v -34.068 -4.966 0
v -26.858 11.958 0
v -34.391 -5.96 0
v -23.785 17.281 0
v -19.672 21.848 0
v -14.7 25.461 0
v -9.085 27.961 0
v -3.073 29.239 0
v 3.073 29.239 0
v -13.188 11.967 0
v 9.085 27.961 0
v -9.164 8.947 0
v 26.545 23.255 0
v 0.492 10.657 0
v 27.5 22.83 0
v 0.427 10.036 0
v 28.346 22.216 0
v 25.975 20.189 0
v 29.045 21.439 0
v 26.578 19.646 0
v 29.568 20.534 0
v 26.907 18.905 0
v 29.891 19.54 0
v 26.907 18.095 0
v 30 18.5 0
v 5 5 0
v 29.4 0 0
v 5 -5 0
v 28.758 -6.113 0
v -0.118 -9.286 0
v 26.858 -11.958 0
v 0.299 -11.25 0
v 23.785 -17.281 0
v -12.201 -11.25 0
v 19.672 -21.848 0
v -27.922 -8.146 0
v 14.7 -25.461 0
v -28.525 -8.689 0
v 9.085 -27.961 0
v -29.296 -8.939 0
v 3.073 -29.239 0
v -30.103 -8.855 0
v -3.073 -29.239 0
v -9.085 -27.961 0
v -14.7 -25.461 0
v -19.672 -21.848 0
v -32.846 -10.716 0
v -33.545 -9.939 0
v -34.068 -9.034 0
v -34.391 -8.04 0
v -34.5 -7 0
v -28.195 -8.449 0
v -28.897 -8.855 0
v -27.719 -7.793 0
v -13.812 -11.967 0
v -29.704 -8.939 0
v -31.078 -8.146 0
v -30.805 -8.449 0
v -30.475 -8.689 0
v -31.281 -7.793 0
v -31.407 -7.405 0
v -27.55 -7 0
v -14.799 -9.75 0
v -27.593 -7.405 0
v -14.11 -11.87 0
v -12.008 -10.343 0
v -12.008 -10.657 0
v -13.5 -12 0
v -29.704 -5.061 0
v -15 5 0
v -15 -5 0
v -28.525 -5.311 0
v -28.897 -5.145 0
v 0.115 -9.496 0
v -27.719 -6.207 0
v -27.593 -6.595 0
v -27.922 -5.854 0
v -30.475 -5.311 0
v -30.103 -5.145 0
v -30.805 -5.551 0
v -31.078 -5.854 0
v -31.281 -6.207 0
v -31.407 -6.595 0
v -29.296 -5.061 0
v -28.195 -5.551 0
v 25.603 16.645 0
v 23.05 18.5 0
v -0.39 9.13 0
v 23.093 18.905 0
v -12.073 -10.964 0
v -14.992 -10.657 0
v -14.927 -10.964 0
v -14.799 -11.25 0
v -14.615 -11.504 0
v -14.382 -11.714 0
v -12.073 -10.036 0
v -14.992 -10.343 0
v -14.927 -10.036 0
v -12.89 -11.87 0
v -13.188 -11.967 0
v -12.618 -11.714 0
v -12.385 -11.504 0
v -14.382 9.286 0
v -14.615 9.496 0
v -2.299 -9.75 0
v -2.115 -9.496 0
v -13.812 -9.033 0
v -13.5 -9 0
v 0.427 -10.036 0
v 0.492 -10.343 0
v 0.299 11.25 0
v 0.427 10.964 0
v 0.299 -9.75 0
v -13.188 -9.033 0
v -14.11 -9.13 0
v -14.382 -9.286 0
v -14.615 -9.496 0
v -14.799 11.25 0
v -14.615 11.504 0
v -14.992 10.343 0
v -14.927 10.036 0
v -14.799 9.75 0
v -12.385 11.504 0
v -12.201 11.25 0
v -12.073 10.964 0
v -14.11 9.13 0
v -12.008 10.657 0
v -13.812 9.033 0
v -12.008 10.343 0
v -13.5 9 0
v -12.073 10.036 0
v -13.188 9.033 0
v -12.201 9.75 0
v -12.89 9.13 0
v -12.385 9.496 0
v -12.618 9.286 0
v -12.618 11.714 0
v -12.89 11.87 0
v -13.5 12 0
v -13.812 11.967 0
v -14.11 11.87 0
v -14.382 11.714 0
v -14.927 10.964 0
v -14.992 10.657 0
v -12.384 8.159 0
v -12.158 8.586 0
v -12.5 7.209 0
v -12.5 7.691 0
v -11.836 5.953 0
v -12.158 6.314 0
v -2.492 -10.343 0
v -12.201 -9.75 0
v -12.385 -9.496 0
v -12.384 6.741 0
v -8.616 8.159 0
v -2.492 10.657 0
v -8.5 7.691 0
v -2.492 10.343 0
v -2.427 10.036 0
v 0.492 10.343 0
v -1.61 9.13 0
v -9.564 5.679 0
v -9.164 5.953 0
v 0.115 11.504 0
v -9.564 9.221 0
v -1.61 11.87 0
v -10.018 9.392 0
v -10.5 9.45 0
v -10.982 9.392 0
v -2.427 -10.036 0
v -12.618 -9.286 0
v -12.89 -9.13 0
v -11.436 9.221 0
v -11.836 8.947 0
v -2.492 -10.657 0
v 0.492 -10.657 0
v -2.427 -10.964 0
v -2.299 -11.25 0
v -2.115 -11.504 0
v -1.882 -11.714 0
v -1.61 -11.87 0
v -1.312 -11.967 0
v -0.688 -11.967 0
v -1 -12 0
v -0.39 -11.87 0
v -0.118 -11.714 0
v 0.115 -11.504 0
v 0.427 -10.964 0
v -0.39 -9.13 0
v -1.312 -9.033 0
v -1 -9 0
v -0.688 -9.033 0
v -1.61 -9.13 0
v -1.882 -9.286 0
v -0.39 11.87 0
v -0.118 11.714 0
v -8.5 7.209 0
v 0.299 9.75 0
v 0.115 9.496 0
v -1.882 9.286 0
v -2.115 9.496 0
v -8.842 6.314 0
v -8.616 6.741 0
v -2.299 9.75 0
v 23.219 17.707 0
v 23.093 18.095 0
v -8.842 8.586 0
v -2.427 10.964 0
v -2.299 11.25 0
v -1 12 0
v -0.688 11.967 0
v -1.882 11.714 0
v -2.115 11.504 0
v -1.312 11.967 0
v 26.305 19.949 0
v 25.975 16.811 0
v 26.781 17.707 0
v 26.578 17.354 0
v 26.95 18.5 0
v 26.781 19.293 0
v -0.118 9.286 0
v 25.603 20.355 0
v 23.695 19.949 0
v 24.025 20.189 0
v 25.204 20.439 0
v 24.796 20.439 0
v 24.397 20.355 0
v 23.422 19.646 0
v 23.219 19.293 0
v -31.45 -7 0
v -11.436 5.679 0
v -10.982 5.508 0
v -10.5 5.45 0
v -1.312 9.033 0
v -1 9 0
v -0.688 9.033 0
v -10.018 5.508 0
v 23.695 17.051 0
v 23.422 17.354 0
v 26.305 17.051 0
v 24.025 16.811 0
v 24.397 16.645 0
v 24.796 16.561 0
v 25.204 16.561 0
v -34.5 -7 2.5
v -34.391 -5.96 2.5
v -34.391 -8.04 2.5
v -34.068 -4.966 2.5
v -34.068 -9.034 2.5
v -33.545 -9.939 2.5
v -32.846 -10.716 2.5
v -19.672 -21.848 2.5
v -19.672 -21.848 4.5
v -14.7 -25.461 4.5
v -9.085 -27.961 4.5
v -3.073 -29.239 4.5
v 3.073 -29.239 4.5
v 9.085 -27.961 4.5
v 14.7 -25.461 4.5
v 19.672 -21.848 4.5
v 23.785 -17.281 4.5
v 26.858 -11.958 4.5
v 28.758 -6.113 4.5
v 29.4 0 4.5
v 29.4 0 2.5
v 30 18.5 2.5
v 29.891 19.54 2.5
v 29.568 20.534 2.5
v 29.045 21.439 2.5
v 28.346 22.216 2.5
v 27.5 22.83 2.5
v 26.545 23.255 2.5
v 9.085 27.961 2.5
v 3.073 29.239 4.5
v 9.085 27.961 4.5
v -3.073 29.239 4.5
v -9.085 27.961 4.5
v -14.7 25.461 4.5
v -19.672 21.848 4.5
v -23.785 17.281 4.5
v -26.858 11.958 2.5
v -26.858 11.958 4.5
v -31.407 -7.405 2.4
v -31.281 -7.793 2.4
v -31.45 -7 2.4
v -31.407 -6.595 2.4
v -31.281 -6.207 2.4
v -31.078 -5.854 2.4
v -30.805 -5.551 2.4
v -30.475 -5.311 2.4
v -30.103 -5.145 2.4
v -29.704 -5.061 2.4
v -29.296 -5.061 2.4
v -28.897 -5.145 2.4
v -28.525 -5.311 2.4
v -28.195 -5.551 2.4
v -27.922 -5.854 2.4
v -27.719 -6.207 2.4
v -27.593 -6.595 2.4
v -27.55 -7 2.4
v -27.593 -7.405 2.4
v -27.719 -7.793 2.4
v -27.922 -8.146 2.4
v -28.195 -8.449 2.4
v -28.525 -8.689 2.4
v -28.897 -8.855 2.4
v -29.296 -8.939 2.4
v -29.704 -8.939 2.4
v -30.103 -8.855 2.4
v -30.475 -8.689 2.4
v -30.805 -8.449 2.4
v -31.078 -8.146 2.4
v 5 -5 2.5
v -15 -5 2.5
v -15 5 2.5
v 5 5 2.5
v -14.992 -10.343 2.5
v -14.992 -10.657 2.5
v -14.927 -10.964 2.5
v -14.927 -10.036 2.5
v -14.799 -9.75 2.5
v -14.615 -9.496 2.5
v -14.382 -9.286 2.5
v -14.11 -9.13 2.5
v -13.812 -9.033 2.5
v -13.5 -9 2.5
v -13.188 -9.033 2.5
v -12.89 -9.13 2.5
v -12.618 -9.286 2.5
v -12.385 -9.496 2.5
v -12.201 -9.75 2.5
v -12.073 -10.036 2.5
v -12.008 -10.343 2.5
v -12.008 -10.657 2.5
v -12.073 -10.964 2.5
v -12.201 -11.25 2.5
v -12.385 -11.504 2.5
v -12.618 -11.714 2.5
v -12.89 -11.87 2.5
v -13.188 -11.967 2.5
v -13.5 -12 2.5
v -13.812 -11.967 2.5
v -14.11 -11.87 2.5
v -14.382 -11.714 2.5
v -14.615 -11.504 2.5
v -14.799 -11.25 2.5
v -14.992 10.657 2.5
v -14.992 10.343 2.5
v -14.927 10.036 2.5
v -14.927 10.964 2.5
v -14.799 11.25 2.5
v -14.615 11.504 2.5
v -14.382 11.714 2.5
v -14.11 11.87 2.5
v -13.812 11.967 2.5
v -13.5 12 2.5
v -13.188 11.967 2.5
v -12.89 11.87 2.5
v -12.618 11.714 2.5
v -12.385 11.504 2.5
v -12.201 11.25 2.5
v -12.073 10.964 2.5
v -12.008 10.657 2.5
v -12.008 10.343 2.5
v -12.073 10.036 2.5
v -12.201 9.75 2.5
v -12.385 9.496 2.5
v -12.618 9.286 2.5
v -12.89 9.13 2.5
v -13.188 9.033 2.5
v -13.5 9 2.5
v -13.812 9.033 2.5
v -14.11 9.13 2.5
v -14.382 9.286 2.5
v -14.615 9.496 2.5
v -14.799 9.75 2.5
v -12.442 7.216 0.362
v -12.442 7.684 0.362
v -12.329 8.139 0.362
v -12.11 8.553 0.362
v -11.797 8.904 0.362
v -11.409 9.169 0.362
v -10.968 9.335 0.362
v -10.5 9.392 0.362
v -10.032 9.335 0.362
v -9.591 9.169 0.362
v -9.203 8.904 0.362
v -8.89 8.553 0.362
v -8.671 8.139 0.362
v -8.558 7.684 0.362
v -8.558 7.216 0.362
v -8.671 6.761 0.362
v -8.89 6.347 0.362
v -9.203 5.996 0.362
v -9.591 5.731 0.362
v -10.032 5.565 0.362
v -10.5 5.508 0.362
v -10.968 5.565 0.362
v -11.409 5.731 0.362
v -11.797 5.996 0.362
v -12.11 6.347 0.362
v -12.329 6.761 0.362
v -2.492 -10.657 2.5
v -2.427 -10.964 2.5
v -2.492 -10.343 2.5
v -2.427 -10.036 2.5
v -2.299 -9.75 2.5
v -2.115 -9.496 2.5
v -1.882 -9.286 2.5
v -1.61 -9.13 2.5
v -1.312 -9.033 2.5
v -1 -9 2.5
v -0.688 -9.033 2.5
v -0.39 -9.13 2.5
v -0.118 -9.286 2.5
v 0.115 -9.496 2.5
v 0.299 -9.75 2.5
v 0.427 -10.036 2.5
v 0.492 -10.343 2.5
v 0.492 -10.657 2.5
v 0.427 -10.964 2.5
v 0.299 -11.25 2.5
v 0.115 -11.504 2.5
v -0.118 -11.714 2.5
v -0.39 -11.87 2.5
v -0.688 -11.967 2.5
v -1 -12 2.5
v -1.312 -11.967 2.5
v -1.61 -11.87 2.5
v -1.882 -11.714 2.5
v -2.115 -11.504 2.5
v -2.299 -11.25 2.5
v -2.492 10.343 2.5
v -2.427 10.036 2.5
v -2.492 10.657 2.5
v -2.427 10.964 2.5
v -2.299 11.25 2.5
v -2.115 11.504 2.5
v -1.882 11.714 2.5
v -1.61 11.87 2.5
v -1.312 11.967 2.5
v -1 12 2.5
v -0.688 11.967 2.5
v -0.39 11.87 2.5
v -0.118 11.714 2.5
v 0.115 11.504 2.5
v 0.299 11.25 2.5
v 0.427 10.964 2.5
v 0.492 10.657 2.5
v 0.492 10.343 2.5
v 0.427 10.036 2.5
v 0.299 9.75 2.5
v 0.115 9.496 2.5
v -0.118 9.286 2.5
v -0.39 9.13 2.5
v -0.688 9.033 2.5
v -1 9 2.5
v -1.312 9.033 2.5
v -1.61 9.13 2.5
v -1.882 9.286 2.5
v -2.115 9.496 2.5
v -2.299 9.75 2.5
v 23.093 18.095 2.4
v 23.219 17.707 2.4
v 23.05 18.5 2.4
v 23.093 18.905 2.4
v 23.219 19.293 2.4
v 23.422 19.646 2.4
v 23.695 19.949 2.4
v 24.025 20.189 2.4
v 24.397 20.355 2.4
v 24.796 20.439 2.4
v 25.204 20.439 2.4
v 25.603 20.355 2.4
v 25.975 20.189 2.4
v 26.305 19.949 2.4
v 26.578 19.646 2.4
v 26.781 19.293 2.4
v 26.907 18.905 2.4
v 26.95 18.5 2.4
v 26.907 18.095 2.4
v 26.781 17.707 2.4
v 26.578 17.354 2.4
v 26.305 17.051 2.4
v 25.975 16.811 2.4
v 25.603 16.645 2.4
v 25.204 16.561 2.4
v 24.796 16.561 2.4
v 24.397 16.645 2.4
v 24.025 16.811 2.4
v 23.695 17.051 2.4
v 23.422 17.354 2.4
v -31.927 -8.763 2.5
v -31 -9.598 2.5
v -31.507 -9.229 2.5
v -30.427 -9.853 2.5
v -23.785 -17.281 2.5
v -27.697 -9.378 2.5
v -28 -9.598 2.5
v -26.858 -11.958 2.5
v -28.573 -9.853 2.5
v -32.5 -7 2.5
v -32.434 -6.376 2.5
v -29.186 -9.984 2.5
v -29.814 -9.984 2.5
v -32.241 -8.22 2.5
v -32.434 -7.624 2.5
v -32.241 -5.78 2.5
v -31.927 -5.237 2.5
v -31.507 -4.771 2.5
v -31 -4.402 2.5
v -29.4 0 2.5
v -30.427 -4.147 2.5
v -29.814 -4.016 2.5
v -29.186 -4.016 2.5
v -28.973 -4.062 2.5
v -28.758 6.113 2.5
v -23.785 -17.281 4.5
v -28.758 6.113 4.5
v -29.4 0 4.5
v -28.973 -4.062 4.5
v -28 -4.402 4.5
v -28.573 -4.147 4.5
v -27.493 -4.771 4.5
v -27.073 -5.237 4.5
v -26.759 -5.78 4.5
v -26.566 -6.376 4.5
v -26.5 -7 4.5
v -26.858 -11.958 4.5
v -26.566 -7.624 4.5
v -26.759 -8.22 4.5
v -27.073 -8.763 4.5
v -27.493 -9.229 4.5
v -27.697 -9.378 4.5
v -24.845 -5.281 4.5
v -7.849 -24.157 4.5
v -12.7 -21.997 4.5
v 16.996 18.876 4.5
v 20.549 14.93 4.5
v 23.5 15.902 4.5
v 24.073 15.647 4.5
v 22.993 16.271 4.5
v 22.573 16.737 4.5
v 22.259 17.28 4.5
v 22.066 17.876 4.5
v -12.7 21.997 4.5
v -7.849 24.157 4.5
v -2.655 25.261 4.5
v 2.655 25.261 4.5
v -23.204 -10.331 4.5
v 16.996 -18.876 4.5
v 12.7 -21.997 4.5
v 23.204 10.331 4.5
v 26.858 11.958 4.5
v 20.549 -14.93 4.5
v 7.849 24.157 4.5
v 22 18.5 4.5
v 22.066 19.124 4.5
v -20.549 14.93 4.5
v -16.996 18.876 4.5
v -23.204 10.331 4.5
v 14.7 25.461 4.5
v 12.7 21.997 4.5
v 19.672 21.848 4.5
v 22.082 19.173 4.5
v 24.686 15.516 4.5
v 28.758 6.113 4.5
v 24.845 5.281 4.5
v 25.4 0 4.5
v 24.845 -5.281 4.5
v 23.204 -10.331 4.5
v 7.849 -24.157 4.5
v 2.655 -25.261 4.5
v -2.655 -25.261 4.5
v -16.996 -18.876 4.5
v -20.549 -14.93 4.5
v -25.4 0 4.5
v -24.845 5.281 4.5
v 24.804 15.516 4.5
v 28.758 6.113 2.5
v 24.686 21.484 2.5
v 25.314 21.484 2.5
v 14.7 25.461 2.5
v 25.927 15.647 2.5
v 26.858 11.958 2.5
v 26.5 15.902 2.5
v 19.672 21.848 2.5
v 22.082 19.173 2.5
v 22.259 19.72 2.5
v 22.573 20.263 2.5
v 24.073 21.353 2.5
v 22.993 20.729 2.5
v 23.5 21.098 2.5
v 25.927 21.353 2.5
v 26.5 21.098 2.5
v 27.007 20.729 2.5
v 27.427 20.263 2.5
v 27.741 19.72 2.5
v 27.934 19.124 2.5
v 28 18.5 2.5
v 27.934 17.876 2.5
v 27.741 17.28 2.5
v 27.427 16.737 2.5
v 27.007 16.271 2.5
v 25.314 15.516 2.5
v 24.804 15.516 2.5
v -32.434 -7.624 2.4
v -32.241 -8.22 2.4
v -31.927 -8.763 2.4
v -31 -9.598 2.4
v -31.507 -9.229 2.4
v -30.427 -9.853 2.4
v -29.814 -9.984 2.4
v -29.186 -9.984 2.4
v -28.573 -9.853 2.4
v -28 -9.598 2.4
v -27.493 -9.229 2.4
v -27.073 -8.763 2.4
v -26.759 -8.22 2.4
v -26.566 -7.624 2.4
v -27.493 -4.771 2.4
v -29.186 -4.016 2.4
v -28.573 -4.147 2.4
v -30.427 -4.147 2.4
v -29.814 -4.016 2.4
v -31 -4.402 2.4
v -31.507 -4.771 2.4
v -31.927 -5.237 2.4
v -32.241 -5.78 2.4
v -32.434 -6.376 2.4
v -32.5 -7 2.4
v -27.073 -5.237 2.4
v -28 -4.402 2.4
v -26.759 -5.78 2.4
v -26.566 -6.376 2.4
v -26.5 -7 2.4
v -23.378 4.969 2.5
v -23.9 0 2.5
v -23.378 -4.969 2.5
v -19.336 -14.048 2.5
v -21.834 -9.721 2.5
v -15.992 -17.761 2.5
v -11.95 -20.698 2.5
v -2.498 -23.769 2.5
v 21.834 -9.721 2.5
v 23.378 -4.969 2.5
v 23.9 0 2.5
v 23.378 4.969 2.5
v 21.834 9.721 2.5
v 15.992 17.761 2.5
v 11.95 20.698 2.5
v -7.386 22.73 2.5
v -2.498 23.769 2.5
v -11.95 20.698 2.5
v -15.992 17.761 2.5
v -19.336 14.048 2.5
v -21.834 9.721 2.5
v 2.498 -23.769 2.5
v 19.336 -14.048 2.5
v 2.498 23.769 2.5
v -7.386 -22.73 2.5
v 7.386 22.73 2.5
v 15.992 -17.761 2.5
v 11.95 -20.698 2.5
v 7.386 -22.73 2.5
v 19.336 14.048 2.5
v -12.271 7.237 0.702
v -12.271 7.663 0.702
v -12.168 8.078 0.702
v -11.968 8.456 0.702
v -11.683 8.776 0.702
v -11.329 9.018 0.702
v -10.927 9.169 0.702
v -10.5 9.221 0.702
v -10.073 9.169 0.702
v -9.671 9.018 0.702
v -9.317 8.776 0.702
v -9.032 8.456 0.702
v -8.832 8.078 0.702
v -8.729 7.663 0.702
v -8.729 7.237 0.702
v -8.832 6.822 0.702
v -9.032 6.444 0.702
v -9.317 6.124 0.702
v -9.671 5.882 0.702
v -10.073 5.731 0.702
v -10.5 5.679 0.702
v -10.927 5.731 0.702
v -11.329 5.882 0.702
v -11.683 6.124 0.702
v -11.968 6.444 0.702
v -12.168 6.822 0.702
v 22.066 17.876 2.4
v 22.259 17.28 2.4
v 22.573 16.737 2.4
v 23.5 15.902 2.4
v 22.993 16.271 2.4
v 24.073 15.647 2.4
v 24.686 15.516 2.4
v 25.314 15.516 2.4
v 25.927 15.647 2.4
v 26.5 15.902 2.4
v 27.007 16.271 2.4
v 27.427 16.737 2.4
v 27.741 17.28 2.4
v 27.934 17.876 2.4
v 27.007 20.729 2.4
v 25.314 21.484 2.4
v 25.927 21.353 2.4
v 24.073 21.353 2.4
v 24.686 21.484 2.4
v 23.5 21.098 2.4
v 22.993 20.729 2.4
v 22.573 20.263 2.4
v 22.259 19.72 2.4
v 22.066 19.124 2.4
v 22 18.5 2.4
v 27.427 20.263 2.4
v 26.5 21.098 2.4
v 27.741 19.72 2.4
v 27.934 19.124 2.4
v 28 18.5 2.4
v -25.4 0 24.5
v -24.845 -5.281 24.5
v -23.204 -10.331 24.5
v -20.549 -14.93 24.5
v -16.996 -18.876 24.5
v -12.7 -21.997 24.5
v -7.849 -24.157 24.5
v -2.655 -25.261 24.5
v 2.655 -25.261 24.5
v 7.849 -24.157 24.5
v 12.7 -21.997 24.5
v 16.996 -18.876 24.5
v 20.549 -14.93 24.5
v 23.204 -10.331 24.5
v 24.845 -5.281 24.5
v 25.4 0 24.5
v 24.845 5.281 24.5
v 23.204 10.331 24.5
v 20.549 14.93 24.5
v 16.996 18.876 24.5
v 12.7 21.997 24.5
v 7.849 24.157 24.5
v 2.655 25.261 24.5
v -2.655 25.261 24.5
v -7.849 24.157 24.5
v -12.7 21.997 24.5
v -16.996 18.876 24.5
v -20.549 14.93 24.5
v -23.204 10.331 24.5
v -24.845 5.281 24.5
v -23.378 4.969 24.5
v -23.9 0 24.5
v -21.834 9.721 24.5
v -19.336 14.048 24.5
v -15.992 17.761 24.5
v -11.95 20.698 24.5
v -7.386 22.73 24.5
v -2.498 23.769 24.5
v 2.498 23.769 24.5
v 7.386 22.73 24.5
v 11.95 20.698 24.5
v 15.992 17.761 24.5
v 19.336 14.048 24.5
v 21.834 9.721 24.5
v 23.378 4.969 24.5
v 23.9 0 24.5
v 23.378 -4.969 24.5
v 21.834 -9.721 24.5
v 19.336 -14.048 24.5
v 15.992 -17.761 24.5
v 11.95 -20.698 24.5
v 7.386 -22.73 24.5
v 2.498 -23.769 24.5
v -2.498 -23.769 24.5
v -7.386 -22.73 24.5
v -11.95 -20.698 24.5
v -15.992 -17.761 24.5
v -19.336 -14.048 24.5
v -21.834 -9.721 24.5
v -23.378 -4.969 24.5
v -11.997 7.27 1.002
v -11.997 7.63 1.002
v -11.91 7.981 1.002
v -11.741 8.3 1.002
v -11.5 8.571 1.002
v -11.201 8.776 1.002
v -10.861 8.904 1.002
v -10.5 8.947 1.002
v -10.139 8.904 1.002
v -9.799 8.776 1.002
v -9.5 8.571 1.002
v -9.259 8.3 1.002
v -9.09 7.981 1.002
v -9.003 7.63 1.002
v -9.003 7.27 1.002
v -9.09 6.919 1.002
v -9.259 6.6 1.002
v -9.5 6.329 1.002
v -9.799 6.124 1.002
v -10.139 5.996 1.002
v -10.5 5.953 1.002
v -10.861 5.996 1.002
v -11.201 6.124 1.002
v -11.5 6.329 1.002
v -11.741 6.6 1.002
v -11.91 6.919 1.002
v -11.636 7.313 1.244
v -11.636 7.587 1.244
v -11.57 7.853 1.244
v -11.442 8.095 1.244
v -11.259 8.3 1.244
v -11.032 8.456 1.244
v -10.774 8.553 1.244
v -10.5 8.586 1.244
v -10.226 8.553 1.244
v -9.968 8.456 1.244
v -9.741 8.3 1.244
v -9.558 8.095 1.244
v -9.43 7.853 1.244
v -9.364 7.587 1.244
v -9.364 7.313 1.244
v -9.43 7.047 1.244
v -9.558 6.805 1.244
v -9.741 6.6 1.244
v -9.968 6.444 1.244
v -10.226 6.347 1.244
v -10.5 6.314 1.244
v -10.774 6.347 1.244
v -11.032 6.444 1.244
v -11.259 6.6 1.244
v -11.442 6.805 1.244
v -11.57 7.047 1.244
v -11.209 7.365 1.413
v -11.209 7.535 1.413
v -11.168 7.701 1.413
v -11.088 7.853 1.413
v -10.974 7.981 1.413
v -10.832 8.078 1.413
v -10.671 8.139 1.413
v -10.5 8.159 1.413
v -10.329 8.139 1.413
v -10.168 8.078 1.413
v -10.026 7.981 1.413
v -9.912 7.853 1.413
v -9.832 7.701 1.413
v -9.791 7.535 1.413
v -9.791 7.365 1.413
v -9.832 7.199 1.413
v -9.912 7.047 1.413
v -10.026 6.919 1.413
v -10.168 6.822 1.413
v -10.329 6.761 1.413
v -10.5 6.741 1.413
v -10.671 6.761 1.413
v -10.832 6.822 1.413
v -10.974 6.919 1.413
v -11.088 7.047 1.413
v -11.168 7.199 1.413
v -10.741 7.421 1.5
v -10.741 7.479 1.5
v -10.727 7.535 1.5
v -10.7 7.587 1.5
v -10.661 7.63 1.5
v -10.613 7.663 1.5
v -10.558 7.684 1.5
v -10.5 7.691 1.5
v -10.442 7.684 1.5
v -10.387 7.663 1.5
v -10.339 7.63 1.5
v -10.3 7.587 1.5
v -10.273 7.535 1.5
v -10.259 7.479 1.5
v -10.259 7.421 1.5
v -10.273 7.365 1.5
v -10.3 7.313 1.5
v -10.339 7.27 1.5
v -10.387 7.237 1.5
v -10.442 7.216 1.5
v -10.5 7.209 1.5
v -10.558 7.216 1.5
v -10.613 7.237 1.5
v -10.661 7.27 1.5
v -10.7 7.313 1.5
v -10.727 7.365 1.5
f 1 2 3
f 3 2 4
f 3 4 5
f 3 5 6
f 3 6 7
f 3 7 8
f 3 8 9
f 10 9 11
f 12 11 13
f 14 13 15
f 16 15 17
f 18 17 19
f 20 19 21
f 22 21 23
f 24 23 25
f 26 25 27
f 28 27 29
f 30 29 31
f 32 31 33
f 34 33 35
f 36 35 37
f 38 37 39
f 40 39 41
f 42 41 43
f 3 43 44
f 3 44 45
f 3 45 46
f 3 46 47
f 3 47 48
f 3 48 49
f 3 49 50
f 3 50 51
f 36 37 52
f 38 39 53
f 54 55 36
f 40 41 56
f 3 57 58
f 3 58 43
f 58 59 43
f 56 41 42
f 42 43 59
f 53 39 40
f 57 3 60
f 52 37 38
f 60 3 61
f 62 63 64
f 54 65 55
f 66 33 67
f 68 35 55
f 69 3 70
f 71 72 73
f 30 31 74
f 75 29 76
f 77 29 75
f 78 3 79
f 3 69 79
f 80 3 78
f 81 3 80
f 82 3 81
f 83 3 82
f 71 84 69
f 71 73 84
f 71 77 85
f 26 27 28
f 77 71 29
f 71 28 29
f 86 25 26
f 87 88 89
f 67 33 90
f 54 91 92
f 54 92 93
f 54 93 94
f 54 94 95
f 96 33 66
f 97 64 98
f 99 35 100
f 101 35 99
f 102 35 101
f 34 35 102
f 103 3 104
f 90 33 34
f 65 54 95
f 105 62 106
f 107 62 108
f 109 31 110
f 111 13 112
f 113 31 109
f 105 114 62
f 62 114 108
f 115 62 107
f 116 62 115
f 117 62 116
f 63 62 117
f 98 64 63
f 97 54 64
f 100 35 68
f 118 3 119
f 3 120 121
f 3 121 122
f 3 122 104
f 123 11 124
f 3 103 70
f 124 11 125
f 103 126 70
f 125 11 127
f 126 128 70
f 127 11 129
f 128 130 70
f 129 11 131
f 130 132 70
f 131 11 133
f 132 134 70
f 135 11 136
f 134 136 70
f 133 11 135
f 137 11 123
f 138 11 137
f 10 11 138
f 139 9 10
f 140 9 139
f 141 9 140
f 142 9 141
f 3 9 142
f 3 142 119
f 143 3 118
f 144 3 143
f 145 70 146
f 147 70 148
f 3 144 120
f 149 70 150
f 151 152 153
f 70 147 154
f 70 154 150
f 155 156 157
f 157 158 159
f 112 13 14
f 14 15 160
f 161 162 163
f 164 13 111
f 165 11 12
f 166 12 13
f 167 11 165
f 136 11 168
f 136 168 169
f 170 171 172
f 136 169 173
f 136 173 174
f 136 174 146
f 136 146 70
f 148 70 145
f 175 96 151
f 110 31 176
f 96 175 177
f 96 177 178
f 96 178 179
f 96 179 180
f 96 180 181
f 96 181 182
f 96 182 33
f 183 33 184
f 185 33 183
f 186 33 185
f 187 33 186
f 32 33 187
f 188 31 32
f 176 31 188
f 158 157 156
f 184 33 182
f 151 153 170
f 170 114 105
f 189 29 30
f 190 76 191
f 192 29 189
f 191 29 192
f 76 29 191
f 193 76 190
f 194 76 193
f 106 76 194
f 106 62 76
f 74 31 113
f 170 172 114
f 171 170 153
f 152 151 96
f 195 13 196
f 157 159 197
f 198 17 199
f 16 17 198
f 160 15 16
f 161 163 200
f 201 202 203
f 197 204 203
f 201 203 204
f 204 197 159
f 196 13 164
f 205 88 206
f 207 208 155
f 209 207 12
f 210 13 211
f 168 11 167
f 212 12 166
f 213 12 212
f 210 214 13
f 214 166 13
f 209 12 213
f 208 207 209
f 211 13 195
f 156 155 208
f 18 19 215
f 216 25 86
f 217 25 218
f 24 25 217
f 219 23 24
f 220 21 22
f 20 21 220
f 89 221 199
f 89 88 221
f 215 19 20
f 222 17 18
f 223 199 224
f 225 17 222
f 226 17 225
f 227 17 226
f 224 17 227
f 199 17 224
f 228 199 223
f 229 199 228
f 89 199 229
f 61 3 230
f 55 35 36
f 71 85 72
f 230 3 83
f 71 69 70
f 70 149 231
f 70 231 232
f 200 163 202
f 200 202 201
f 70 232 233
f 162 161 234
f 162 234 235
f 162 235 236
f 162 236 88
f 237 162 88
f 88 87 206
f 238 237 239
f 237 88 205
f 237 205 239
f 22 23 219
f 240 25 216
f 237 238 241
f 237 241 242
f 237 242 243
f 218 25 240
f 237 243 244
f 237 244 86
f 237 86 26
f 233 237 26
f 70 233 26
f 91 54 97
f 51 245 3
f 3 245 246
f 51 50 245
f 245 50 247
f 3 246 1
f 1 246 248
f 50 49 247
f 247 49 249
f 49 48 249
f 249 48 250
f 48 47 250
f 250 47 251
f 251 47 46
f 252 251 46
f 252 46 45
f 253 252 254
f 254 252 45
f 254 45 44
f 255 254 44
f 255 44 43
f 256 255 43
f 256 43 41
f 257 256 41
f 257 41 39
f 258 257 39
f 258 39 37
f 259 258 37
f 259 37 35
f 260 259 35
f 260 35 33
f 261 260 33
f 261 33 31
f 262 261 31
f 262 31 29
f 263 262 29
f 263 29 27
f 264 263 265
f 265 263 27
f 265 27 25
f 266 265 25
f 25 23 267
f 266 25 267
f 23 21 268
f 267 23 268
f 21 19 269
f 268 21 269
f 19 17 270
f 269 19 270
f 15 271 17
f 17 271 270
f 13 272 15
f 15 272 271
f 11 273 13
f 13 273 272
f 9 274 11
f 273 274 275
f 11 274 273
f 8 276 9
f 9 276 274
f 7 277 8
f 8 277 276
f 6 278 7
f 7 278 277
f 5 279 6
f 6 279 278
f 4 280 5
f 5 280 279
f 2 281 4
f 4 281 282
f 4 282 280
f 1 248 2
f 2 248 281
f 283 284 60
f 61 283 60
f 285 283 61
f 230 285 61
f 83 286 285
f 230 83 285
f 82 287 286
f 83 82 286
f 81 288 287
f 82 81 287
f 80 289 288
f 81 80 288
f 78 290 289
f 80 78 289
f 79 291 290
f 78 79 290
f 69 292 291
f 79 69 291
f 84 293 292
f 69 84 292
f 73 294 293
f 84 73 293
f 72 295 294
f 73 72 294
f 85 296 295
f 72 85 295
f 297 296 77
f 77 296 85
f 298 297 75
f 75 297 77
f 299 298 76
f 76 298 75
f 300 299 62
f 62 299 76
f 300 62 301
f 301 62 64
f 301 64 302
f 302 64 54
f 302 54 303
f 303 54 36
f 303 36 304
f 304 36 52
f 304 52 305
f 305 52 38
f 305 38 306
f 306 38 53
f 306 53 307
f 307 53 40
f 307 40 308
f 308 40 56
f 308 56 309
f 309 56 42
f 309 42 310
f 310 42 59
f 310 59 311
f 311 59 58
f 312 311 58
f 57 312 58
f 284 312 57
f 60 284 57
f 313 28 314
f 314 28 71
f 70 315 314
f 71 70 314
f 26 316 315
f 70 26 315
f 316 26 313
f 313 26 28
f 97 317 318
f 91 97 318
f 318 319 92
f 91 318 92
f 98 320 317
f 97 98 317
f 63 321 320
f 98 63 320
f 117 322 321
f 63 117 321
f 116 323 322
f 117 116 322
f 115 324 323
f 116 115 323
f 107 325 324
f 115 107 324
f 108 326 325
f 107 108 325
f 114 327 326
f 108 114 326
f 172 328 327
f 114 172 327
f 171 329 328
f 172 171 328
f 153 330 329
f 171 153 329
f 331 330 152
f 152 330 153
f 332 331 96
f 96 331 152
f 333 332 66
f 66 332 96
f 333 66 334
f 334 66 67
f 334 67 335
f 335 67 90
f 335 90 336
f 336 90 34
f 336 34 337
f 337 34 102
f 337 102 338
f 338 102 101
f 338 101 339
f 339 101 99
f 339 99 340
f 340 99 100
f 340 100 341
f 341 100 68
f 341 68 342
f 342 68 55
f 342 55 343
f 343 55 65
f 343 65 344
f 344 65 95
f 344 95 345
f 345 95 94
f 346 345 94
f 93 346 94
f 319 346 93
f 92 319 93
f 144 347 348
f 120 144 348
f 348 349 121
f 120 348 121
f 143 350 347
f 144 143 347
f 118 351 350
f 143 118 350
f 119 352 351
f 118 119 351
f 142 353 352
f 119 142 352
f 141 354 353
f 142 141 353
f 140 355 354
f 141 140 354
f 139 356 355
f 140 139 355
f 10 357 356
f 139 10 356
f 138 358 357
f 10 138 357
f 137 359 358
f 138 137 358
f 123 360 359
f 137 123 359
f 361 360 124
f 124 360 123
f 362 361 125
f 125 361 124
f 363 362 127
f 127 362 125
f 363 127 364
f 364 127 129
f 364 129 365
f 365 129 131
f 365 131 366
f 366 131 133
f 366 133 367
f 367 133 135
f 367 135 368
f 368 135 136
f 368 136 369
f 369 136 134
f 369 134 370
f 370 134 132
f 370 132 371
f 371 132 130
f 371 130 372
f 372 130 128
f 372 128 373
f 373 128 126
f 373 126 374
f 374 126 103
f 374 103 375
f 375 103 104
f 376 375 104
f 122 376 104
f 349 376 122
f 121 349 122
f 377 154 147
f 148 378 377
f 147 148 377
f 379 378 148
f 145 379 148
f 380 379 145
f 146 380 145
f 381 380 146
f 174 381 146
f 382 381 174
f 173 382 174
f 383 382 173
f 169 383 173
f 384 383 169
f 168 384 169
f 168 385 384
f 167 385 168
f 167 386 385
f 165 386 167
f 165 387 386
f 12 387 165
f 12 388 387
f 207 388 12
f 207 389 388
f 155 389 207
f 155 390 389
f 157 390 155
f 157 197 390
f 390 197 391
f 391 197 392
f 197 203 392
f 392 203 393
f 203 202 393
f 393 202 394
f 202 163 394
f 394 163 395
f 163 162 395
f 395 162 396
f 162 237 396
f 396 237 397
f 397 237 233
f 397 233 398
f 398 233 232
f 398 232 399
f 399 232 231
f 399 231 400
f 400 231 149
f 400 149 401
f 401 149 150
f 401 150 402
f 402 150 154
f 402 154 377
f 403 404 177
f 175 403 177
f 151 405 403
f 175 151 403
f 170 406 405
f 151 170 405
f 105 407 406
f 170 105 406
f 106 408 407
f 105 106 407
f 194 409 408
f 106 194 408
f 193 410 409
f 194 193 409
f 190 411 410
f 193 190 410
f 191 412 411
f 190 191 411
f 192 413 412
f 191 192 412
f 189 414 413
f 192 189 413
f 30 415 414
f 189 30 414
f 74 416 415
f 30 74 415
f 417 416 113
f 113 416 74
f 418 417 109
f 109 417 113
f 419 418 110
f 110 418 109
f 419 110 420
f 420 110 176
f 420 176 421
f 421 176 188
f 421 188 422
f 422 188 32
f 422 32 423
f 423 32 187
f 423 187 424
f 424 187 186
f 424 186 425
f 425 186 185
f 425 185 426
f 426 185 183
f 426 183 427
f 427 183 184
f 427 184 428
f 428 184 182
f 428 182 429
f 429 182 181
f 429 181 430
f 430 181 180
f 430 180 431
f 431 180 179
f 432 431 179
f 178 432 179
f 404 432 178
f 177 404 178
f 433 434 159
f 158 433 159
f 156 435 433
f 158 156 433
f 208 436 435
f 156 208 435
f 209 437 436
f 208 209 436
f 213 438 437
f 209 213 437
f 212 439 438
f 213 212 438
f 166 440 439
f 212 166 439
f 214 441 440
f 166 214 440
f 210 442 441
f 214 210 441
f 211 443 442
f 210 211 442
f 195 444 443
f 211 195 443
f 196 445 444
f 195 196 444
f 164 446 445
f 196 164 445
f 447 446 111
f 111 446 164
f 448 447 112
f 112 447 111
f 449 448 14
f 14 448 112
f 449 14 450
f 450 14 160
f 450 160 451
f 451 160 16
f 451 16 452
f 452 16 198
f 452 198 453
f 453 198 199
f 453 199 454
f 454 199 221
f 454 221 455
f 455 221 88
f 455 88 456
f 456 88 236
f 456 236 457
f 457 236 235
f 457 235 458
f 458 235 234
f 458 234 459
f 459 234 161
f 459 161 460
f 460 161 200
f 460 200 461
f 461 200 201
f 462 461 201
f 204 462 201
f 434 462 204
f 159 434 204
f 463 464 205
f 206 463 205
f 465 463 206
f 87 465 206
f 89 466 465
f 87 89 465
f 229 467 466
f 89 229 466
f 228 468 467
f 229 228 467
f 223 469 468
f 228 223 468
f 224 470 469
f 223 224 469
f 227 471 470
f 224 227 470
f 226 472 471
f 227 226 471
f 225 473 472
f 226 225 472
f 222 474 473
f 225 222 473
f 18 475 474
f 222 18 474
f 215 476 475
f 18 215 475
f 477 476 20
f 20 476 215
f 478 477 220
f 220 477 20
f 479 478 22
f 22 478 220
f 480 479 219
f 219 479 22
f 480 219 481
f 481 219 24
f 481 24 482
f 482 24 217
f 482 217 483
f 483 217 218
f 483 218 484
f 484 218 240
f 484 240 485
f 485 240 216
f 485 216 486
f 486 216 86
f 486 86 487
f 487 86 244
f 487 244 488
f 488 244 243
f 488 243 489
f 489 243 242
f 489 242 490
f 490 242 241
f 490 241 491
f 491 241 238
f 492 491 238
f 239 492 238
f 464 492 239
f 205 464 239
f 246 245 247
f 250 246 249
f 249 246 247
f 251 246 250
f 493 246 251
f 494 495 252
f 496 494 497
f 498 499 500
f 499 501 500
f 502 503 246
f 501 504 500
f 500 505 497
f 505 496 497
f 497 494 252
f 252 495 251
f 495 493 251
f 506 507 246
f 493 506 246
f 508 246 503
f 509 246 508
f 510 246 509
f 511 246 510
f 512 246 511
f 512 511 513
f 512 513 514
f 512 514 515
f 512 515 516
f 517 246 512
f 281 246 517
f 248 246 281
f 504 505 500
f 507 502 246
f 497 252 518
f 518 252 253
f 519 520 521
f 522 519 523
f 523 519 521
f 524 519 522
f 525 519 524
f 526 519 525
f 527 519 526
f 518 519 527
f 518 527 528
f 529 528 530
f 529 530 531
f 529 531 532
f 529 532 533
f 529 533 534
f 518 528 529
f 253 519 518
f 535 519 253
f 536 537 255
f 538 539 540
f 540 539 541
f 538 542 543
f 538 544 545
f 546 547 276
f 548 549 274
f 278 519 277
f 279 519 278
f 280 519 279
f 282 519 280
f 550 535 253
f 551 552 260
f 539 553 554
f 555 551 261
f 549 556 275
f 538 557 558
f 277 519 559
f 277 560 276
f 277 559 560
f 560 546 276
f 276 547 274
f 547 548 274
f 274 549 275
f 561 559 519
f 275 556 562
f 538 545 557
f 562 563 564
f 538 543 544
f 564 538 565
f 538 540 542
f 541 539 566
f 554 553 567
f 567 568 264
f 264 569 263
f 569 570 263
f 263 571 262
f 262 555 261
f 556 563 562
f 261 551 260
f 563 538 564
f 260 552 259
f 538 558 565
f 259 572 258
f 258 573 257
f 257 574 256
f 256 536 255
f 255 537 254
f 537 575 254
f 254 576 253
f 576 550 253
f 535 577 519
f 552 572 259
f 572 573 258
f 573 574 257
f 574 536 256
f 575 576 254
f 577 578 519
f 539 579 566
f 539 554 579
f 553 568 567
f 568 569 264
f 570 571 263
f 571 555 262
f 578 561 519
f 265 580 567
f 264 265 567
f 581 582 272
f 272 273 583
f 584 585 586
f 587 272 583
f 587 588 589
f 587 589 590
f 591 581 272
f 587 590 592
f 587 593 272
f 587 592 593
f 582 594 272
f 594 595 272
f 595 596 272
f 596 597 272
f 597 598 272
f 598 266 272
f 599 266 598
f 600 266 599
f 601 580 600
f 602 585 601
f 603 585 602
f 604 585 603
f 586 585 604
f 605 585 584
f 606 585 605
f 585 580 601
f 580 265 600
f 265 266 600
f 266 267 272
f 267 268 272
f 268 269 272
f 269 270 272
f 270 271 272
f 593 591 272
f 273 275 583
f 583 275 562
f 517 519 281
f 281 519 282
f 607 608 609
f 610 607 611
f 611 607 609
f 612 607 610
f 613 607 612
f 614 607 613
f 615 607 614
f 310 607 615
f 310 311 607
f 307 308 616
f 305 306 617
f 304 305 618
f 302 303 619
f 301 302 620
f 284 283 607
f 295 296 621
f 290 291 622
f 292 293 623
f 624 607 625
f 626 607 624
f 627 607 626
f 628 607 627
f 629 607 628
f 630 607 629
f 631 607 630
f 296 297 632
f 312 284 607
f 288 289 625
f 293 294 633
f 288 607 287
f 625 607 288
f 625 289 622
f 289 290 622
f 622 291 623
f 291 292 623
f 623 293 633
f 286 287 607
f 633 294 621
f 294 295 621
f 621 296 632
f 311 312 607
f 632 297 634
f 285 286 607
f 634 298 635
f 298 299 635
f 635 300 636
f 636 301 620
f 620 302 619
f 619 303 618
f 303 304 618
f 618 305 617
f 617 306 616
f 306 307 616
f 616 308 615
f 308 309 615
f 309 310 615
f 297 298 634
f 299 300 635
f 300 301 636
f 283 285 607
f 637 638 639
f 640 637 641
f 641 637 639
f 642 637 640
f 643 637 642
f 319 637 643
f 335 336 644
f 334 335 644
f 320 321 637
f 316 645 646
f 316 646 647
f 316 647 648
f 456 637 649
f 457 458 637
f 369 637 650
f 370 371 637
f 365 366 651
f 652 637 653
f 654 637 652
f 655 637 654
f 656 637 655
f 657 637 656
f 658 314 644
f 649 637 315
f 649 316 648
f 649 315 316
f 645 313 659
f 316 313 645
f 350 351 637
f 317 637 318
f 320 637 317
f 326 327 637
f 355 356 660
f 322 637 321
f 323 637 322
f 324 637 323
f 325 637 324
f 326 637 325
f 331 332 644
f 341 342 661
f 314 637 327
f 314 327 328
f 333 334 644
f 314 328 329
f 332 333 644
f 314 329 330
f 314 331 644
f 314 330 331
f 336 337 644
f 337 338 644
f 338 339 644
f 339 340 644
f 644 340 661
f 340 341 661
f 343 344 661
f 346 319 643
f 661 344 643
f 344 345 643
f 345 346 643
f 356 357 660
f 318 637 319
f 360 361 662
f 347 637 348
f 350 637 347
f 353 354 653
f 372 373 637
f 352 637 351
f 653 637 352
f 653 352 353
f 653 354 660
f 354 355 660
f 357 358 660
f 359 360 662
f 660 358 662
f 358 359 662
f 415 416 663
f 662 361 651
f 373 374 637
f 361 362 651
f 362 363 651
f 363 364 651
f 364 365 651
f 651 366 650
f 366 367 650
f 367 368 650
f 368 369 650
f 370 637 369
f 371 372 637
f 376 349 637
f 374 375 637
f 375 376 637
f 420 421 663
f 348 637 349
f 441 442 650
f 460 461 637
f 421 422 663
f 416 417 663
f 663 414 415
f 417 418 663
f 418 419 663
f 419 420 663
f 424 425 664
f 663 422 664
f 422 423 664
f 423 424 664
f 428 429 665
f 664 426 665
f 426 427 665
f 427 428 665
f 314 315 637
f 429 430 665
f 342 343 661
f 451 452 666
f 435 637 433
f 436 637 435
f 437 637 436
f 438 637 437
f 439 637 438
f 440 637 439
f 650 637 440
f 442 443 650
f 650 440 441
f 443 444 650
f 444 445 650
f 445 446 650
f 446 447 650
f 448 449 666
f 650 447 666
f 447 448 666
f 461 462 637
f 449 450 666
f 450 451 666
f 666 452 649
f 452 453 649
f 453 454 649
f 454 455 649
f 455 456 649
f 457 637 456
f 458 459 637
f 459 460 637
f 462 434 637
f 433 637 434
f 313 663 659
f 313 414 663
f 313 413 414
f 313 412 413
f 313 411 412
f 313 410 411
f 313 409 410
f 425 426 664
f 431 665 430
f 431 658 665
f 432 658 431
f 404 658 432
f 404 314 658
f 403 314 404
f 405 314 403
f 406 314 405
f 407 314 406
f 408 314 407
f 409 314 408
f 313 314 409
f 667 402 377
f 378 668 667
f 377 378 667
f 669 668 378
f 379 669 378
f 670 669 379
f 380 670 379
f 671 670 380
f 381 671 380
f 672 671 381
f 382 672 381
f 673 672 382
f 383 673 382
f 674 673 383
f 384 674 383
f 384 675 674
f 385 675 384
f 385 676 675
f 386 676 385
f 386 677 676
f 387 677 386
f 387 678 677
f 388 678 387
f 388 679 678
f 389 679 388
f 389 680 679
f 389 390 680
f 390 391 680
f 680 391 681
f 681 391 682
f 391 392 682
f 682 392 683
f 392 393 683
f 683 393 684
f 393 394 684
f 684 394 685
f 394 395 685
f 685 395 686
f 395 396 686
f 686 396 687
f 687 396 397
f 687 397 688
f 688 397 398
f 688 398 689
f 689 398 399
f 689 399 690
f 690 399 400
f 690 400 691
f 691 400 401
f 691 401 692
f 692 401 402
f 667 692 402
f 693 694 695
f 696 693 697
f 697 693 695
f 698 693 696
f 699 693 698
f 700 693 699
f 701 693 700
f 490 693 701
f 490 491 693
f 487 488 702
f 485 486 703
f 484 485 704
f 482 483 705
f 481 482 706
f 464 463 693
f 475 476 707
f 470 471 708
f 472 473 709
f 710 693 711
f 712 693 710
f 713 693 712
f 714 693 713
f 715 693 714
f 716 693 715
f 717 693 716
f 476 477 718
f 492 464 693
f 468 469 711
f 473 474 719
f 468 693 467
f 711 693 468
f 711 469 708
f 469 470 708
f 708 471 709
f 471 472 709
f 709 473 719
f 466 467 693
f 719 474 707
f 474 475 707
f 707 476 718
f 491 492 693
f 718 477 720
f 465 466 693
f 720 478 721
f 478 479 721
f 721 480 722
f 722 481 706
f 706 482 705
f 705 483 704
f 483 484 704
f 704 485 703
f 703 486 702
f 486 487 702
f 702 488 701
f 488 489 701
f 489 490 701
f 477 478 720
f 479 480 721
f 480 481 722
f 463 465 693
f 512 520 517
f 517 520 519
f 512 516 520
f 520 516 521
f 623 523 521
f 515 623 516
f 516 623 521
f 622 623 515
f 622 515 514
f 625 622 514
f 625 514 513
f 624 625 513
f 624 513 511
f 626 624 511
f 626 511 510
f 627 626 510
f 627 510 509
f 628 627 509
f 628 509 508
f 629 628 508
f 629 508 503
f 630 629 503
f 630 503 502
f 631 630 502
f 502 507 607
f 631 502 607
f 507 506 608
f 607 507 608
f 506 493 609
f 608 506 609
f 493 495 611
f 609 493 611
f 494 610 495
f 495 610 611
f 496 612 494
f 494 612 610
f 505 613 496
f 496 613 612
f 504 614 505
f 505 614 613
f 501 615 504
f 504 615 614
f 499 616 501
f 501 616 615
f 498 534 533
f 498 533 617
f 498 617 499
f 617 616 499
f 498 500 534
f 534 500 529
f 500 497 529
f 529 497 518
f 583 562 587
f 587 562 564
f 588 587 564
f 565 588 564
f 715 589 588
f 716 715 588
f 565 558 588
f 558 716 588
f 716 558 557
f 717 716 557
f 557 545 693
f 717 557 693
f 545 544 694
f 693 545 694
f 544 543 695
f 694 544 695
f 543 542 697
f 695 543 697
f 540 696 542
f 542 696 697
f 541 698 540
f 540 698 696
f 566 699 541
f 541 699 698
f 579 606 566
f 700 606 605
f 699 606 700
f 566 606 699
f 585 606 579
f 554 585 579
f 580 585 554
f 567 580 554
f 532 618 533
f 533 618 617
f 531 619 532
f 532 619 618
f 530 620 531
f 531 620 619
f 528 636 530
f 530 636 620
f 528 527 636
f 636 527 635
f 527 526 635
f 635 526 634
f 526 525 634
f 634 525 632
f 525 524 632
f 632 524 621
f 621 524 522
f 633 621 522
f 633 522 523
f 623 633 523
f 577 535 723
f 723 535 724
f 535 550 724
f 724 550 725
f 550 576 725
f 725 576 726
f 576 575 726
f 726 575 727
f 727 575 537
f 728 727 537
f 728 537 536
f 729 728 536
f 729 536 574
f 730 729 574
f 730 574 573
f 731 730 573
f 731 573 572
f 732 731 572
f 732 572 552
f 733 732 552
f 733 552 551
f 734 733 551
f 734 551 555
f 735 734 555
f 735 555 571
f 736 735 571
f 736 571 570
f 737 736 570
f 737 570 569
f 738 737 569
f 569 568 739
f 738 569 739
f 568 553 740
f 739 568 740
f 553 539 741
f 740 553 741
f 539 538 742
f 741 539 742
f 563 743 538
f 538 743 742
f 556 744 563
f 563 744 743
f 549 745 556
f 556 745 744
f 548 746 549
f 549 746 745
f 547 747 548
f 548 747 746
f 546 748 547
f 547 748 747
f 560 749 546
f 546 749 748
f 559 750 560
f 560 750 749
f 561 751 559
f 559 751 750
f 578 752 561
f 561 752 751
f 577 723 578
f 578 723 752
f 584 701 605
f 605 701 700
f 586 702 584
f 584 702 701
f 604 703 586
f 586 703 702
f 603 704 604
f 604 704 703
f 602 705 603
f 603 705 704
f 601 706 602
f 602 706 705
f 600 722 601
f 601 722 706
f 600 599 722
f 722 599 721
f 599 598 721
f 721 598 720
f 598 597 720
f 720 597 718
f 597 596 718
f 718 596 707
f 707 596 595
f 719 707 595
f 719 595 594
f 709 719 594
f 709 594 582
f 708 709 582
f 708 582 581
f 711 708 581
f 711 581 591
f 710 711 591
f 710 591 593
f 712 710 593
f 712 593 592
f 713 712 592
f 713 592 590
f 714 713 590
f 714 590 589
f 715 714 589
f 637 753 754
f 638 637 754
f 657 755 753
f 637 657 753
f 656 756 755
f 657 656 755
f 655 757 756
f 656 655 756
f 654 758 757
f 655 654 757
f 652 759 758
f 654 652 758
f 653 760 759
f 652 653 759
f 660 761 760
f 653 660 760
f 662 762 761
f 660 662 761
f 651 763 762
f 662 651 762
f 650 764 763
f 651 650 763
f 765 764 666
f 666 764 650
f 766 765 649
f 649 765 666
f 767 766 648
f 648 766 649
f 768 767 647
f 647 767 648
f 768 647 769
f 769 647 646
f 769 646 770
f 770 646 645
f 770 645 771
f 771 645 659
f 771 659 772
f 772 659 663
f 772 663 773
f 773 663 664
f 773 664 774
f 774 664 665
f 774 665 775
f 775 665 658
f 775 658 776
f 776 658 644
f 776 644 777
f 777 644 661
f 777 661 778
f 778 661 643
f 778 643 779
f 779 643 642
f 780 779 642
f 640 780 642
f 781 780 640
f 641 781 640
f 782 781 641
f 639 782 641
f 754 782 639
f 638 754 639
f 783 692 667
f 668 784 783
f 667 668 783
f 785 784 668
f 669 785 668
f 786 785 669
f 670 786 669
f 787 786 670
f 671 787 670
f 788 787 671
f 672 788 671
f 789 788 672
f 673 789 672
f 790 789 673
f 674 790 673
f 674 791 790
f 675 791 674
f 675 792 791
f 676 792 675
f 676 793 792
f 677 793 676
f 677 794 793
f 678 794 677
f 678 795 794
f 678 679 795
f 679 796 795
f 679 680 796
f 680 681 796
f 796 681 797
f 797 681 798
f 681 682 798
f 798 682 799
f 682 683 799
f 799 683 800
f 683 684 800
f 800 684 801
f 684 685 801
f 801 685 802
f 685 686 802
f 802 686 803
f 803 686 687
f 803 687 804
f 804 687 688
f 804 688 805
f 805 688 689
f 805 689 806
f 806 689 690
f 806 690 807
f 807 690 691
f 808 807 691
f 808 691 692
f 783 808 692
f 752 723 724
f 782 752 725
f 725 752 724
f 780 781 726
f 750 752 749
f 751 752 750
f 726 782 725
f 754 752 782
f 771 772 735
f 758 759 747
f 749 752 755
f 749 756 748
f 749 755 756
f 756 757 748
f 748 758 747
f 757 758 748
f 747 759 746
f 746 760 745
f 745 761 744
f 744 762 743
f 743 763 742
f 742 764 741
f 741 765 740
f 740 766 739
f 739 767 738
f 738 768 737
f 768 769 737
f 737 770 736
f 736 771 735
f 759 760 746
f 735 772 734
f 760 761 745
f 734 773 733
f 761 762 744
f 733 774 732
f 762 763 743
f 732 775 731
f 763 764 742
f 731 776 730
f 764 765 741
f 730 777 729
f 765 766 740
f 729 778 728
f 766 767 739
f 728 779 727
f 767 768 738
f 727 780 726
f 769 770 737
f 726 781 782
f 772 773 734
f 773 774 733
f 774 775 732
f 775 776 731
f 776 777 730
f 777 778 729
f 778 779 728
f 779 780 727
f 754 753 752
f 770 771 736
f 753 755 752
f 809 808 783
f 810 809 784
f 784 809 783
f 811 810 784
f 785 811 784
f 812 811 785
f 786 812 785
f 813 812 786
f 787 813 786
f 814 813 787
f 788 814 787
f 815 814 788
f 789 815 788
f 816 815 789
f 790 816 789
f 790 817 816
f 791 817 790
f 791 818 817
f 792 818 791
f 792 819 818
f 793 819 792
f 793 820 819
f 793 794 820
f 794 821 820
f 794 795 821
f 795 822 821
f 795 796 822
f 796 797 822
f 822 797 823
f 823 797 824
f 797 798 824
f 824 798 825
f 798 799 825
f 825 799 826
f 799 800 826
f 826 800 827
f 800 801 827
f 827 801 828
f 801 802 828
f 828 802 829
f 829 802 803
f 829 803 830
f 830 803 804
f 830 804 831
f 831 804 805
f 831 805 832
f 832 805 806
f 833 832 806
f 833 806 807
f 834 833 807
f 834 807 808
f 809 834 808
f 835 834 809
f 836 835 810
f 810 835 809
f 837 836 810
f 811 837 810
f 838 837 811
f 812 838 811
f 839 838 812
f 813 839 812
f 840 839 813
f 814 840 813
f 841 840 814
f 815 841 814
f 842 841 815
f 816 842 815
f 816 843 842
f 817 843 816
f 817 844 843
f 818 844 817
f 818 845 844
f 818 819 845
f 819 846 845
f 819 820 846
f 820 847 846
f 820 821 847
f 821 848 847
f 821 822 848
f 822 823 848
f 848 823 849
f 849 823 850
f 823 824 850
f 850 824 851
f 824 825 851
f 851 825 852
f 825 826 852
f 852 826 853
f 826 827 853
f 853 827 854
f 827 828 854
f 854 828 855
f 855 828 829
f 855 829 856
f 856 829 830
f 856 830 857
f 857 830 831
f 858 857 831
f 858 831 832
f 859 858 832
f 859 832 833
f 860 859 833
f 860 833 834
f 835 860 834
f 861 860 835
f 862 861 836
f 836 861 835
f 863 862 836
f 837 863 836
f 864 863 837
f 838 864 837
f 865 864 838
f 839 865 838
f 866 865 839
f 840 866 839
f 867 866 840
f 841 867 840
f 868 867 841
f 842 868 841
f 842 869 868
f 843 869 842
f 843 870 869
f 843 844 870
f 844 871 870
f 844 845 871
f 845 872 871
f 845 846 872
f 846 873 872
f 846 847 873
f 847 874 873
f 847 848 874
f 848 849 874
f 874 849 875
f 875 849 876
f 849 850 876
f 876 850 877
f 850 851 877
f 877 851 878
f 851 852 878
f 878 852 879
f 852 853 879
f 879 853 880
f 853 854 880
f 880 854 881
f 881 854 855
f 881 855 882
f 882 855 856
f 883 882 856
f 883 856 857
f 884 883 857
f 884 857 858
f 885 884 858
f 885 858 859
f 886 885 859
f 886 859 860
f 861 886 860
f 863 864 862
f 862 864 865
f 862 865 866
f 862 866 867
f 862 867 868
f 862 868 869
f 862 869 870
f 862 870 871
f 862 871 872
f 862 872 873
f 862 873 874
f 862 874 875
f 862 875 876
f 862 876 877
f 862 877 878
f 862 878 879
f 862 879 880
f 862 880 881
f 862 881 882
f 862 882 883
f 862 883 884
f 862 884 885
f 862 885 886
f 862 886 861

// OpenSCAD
// camera module draw tube that slides into the telescope nosepiece.

$fs=0.25;
// Make the values explicit since we are not running customizer
Drawtube_OD_inches_explicit = 2.00;
part_explicit="drawtube";

include <pipiece.scad>
